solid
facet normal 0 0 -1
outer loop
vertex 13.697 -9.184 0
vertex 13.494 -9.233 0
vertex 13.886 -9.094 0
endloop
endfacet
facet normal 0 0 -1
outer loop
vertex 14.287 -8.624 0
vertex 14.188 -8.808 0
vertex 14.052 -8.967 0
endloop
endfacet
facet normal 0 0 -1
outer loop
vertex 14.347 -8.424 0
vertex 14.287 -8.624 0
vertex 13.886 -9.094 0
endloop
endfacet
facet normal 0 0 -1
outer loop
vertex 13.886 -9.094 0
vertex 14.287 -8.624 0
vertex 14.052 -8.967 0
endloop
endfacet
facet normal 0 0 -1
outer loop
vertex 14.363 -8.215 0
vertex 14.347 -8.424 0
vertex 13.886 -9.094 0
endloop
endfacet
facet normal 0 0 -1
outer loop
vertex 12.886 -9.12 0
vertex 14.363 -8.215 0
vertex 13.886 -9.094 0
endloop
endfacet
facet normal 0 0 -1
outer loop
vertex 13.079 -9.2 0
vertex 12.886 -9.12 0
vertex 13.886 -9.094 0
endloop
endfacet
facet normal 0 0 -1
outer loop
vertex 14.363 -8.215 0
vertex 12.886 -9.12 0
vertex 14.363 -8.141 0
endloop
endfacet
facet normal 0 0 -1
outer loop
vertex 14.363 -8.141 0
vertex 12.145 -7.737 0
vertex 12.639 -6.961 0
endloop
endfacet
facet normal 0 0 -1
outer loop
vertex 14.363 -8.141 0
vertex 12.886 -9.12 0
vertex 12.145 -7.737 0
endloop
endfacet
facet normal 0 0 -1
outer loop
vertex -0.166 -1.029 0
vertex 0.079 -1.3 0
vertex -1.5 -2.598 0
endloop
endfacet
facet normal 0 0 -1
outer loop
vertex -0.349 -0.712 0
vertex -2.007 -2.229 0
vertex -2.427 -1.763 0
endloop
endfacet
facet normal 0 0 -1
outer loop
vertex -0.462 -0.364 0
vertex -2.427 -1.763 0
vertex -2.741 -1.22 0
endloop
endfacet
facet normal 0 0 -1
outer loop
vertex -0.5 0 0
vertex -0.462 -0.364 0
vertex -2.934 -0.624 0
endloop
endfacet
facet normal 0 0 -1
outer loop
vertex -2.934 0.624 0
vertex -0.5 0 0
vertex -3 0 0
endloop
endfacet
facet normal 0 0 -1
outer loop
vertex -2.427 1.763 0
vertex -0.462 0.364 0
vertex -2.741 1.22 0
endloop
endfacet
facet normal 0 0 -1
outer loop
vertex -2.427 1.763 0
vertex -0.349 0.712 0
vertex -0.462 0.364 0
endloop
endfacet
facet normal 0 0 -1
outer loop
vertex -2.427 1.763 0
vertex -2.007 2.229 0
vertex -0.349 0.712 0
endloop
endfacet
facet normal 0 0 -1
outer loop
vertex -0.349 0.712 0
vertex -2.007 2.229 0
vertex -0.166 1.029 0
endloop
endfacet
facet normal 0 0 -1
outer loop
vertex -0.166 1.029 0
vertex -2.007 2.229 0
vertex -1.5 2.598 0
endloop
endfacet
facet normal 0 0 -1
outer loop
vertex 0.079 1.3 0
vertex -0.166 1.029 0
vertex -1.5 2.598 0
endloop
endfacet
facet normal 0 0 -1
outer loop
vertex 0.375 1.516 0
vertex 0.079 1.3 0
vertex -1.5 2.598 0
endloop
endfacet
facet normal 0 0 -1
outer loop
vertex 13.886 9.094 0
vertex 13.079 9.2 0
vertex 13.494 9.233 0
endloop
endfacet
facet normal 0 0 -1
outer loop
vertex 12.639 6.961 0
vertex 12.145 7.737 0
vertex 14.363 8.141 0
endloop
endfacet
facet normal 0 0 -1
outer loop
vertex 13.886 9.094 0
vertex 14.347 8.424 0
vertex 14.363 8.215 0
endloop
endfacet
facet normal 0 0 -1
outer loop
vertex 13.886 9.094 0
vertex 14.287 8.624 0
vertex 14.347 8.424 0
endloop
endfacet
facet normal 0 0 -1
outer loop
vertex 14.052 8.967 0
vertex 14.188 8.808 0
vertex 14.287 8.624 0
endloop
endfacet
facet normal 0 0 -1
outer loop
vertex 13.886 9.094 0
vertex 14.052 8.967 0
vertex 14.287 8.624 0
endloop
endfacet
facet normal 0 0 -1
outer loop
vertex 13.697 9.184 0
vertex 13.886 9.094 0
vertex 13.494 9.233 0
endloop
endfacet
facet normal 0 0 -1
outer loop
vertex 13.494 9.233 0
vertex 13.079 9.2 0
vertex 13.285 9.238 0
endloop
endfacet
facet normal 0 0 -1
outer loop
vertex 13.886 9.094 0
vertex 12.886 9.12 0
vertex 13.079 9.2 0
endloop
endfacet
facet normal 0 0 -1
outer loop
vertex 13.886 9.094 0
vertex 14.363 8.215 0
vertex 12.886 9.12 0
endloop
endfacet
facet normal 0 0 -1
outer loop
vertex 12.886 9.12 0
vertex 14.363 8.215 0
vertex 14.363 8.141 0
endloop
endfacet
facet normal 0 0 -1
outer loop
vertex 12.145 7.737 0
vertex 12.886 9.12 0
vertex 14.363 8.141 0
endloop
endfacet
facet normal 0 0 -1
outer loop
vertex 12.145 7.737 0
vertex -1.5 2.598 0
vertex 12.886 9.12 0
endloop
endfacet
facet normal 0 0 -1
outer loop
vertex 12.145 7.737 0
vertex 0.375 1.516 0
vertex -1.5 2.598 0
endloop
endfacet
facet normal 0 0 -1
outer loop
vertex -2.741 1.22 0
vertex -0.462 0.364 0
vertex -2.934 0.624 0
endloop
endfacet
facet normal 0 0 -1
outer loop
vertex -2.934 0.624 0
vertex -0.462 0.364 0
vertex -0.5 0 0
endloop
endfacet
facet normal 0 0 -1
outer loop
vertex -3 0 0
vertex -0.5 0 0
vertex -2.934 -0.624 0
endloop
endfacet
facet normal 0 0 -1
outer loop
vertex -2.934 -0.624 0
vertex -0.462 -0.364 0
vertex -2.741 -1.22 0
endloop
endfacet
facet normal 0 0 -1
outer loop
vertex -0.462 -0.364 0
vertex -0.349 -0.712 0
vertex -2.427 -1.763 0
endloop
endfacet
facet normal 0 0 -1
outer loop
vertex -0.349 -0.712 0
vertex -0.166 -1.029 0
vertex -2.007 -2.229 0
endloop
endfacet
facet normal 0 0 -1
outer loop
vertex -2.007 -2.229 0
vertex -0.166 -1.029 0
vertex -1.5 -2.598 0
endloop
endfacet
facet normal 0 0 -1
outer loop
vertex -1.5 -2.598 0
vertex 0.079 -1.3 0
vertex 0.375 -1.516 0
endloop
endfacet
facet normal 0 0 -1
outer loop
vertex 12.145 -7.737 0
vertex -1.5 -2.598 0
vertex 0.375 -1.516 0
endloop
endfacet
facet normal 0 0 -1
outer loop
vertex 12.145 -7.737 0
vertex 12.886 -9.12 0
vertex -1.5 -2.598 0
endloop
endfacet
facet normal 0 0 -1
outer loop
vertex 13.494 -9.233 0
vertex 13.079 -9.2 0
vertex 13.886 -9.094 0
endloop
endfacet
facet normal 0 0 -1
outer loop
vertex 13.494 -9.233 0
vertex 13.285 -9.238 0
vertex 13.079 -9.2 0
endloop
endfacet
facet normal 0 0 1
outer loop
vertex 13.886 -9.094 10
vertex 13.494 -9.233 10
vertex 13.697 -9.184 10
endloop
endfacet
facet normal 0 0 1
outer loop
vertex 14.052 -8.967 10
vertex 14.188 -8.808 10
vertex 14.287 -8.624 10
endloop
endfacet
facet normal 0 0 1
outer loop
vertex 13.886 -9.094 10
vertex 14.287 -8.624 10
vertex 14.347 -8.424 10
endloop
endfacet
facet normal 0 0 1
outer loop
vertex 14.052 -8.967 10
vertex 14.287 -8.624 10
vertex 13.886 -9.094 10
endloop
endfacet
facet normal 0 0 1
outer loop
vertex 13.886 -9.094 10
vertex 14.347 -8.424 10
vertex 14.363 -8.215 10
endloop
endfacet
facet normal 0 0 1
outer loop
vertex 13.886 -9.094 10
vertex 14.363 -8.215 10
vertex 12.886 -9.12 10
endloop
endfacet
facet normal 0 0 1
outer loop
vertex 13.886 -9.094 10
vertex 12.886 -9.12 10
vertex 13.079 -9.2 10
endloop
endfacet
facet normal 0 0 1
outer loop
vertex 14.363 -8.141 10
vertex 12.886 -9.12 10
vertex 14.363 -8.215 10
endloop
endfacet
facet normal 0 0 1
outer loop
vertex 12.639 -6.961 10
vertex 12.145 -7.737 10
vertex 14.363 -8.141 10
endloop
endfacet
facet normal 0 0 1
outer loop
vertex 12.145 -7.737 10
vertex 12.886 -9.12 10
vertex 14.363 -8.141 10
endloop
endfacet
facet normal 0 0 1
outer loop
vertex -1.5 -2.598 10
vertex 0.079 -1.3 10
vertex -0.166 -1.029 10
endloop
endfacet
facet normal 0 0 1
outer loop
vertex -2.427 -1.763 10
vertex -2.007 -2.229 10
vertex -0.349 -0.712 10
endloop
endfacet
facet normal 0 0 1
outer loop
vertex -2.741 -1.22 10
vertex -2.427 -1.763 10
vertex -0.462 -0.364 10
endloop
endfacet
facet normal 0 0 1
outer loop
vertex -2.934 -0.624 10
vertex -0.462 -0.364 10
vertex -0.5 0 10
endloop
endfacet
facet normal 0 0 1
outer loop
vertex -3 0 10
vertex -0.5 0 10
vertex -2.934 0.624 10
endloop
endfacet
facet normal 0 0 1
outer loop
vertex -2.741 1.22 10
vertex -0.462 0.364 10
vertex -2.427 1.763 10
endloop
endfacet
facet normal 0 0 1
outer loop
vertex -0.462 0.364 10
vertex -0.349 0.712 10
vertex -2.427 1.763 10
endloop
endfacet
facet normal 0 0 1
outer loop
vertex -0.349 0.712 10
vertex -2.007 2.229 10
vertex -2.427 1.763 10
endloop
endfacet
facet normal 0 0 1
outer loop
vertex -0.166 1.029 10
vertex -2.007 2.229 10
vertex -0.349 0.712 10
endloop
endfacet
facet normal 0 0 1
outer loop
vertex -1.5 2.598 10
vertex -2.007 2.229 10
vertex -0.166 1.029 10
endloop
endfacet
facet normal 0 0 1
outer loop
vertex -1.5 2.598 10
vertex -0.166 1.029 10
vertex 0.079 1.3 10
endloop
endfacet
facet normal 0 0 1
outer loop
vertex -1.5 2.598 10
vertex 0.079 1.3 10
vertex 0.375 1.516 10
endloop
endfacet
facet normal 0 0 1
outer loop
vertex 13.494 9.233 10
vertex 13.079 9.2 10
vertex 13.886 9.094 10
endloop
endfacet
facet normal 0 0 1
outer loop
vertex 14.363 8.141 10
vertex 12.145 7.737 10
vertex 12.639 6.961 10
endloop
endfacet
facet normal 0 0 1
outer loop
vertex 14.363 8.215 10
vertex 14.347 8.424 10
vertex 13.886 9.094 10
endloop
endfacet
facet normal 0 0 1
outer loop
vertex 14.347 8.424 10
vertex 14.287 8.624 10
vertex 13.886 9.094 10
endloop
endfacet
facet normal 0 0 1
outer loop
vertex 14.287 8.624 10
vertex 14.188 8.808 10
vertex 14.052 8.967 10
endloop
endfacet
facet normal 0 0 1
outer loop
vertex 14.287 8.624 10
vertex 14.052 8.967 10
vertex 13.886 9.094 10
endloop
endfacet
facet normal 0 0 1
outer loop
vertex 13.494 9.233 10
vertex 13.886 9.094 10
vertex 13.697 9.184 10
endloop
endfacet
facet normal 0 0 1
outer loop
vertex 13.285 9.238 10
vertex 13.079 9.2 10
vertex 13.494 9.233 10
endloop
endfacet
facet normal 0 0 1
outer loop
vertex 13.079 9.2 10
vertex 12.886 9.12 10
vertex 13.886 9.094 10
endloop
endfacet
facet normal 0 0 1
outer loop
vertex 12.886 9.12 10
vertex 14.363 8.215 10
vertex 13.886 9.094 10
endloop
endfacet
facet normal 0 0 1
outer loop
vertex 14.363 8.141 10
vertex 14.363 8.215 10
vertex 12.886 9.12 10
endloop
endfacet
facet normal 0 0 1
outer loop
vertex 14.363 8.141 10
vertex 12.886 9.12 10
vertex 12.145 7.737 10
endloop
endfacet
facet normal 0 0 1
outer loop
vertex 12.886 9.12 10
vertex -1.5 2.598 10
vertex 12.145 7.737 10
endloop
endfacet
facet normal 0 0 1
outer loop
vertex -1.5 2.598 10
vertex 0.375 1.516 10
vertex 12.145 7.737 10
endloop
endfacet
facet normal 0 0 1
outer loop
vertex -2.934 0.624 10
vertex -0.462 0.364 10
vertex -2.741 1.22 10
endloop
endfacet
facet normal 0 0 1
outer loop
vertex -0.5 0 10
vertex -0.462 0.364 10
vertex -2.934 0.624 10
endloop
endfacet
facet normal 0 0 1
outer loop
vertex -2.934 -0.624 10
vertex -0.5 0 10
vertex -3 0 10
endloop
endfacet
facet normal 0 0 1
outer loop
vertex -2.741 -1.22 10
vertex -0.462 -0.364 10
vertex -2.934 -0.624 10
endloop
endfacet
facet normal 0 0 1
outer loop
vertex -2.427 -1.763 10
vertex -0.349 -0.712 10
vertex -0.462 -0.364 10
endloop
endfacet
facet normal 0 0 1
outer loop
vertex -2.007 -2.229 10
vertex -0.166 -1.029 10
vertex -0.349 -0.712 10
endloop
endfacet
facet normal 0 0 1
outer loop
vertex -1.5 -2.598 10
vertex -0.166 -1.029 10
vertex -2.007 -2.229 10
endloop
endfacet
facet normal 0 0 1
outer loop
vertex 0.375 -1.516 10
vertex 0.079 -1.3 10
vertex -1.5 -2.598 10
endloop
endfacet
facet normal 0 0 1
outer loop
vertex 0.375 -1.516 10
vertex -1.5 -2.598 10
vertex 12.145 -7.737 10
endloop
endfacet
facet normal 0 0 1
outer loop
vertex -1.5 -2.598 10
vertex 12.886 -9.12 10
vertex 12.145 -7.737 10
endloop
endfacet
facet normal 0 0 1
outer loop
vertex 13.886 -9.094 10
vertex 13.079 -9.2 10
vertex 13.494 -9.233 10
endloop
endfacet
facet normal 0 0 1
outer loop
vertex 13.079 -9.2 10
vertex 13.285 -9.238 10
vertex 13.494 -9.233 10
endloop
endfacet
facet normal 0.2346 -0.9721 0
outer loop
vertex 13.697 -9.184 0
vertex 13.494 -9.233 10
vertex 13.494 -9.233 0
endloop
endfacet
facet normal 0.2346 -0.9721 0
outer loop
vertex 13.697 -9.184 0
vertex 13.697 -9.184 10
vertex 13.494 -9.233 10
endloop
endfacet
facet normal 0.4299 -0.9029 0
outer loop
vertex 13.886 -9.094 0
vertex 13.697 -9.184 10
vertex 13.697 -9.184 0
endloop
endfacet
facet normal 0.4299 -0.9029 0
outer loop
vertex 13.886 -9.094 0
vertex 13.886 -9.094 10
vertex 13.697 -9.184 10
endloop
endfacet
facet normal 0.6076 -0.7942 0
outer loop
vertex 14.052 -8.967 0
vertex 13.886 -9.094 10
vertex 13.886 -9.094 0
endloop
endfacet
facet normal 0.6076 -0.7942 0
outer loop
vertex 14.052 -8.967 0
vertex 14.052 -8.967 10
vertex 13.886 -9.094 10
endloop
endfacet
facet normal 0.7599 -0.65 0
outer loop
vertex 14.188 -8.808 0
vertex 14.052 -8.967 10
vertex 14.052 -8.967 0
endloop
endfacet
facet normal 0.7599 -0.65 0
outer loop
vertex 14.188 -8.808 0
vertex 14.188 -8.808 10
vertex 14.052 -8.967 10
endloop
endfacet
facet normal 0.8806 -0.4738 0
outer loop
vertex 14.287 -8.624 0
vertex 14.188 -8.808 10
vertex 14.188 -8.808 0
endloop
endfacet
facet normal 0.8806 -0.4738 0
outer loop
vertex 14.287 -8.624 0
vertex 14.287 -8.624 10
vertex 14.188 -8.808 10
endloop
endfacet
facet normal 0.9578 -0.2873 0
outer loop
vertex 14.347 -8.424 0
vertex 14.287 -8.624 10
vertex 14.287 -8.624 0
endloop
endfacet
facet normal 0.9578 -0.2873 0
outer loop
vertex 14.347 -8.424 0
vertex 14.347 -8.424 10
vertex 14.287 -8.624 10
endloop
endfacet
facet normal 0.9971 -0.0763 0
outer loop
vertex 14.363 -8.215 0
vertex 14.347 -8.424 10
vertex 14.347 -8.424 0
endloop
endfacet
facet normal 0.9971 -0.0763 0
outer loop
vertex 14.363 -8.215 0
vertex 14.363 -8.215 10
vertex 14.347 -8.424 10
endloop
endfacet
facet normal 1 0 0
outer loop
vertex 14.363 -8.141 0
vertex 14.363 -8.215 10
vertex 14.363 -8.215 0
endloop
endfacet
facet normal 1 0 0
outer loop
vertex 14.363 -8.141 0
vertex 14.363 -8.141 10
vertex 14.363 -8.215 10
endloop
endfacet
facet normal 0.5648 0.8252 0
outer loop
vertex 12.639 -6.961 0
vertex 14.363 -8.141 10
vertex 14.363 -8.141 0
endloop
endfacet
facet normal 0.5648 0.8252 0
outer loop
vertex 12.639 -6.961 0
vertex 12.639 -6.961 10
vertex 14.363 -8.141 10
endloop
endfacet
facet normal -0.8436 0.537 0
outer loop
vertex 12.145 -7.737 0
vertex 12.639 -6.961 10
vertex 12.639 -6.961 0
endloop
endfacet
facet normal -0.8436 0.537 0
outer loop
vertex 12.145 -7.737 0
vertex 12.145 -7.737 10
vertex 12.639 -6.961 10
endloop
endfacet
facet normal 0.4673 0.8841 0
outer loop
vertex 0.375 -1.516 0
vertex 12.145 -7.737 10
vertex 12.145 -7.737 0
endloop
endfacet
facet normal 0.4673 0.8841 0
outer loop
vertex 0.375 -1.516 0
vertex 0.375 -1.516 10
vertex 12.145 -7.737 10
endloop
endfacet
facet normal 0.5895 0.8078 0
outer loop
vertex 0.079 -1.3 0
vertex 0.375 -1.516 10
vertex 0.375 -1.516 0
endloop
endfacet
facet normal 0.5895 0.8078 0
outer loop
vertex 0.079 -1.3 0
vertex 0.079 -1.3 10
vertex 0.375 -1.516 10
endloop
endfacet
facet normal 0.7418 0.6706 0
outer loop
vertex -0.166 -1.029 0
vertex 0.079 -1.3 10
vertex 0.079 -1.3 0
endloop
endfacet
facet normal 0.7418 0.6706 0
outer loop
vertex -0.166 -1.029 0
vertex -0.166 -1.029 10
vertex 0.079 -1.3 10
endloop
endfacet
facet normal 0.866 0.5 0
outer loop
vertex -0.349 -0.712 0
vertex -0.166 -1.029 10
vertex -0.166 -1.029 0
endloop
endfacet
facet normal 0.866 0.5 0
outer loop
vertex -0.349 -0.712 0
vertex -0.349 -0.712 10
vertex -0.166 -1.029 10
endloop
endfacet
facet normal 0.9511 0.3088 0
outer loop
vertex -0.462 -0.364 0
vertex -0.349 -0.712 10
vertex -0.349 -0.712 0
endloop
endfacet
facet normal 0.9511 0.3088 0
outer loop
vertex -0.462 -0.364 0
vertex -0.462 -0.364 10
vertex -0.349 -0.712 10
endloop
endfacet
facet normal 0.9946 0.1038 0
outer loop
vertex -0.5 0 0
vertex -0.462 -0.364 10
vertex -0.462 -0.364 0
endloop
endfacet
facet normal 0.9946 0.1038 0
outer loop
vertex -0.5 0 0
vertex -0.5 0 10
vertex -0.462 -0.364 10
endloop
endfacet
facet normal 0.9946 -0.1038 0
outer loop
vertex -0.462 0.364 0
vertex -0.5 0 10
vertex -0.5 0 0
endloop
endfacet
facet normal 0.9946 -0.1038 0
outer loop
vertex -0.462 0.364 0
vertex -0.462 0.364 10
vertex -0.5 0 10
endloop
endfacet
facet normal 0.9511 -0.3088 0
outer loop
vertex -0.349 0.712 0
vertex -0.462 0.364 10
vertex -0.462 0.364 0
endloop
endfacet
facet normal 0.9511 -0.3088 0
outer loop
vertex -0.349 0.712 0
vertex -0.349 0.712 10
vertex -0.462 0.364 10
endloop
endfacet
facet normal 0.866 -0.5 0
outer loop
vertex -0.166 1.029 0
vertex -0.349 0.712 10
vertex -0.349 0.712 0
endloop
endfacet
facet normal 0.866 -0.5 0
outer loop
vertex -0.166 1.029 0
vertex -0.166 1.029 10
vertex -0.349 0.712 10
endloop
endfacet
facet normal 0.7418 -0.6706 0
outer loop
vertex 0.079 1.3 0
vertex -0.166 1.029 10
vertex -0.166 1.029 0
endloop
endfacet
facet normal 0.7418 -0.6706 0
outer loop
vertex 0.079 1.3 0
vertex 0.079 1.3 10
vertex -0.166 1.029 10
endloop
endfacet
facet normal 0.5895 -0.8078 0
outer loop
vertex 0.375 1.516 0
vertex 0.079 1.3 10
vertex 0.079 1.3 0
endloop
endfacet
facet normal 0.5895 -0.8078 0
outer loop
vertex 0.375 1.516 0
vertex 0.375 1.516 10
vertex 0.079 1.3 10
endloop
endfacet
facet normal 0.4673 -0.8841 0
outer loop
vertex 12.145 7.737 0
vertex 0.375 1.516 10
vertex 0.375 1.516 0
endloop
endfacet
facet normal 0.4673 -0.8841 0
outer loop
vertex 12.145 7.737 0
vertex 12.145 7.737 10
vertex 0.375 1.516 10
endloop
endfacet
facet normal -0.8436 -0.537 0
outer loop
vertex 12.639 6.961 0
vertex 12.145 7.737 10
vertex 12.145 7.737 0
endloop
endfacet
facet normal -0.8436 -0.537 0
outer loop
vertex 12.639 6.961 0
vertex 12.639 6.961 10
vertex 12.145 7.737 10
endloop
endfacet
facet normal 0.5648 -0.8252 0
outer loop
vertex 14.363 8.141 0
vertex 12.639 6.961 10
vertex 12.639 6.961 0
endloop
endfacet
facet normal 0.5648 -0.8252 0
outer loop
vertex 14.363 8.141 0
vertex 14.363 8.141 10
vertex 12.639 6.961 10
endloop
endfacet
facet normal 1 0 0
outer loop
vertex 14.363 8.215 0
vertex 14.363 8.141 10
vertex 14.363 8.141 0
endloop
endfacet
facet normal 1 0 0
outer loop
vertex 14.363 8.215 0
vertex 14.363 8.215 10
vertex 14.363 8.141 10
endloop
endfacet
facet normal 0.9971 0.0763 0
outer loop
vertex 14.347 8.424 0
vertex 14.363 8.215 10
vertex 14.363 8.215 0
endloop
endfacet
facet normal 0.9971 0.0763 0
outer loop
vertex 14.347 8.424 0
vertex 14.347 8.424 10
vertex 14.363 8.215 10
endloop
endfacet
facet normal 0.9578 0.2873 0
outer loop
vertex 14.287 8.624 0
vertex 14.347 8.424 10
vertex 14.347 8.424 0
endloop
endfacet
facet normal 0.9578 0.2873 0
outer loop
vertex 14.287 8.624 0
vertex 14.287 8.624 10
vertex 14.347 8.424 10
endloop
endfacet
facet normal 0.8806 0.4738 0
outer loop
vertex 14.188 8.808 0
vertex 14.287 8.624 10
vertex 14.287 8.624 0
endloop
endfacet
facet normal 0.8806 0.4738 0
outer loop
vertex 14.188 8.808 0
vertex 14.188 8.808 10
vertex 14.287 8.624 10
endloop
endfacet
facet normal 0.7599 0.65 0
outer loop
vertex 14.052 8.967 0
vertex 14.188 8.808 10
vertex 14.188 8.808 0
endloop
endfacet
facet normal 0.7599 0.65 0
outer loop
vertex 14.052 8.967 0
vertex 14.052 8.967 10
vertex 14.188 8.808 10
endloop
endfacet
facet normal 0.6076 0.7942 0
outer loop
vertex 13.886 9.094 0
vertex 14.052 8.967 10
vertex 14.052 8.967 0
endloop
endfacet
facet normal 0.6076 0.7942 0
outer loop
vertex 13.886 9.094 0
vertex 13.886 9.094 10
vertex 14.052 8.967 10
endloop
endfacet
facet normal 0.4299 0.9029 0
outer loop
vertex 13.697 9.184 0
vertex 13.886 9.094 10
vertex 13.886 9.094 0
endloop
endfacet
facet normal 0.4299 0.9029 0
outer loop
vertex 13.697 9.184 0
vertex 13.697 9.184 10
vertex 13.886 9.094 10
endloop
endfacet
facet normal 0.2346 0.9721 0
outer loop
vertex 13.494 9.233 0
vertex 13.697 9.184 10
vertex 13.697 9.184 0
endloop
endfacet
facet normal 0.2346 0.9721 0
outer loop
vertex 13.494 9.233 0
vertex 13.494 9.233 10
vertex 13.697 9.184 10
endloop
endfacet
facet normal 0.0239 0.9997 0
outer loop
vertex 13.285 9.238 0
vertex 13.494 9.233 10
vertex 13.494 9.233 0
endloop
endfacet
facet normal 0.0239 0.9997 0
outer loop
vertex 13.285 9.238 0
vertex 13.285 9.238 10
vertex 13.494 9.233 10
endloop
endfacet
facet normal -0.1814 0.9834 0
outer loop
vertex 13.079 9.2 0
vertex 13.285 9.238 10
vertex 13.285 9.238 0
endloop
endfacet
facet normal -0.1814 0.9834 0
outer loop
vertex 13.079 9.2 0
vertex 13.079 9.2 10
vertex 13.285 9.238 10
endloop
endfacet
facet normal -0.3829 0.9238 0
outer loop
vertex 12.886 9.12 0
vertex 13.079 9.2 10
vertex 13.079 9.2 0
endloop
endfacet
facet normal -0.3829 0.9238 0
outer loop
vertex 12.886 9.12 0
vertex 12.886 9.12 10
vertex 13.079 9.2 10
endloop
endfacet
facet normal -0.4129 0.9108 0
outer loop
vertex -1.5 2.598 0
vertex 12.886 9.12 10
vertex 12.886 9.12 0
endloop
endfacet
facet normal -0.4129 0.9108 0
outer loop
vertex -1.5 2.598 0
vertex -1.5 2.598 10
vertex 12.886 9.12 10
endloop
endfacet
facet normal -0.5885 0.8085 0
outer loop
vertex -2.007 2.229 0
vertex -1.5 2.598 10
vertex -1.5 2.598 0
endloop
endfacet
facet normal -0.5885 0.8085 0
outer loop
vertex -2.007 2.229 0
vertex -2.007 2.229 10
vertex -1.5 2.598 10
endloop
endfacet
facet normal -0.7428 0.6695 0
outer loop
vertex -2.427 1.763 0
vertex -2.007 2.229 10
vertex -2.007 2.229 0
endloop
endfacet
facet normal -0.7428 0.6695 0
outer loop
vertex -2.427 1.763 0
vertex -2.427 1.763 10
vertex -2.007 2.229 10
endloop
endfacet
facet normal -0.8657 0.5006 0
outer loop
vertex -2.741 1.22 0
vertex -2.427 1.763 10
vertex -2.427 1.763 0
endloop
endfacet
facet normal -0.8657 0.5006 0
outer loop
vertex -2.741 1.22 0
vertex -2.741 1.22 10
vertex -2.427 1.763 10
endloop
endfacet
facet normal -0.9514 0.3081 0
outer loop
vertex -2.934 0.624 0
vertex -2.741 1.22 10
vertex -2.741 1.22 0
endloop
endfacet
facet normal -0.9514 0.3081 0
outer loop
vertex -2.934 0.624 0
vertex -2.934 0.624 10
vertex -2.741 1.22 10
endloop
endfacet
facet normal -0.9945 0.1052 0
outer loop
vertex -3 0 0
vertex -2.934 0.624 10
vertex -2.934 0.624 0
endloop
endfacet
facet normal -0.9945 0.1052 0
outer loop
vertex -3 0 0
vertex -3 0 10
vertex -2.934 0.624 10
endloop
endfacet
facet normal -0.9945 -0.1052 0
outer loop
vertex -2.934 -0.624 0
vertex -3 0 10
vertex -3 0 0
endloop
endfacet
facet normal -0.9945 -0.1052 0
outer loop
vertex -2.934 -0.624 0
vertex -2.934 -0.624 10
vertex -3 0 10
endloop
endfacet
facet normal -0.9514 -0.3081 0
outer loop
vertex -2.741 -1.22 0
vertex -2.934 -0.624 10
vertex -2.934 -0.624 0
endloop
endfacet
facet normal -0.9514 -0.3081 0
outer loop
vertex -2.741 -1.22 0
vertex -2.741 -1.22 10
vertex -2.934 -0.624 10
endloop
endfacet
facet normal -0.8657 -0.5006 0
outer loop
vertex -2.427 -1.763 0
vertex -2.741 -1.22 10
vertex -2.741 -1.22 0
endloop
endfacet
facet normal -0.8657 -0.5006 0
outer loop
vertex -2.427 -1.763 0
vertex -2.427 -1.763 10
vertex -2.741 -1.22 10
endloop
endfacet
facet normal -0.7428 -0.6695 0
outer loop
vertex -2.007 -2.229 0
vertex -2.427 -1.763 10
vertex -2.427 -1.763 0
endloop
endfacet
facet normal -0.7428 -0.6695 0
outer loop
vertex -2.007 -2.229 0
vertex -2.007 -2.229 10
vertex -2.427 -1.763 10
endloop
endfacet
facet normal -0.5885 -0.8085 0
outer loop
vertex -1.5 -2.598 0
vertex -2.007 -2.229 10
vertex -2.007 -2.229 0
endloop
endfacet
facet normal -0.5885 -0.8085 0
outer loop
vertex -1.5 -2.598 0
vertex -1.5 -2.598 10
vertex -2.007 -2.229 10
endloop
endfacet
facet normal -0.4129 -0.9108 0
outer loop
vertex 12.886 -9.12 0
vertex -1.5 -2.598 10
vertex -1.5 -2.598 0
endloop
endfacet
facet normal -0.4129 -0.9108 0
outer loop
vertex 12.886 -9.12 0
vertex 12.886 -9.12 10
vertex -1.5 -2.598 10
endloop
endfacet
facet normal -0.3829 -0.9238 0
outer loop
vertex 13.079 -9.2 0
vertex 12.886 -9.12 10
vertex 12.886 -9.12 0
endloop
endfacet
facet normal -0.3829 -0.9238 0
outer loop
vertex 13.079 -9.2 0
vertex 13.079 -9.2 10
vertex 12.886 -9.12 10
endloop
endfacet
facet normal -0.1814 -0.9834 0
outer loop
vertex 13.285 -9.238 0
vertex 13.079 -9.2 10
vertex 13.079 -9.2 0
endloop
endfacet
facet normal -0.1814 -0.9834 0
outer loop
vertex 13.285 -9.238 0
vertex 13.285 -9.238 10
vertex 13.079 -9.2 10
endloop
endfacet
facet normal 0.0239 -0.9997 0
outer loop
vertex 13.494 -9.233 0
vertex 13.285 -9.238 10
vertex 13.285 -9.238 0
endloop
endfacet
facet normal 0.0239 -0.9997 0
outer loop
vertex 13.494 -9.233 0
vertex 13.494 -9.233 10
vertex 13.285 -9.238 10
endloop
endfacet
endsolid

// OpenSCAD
e2e_length = 15.5;
butt_depth = 2.5;
outer_width = 6;
armpit_diam = 3.5;
grasp_length = 2.1;
grasp_width = 2.3;
extrude_depth = 10;
angle = 45;
inner_angle = 65;

$fs = 0.1;

armpit_x_center = -outer_width/2 + armpit_diam/2 + butt_depth;

linear_extrude(extrude_depth) difference() {
  hull() {
    circle(d=outer_width);
    rotate(angle/2) translate([e2e_length, outer_width/2-.5]) circle(1);
    rotate(-angle/2) translate([e2e_length, -outer_width/2+.5]) circle(1);
  }
  hull() {
    translate([armpit_x_center, 0])
      circle(d=armpit_diam);
      rotate(inner_angle/2) translate([e2e_length-grasp_length,-5]) square([1,5]);
      rotate(-inner_angle/2) translate([e2e_length-grasp_length,0]) square([1,5]);
  }
  hull() {
    translate([6,0]) circle(2);
    translate([20,-12]) square([5,24]);
  }
}
